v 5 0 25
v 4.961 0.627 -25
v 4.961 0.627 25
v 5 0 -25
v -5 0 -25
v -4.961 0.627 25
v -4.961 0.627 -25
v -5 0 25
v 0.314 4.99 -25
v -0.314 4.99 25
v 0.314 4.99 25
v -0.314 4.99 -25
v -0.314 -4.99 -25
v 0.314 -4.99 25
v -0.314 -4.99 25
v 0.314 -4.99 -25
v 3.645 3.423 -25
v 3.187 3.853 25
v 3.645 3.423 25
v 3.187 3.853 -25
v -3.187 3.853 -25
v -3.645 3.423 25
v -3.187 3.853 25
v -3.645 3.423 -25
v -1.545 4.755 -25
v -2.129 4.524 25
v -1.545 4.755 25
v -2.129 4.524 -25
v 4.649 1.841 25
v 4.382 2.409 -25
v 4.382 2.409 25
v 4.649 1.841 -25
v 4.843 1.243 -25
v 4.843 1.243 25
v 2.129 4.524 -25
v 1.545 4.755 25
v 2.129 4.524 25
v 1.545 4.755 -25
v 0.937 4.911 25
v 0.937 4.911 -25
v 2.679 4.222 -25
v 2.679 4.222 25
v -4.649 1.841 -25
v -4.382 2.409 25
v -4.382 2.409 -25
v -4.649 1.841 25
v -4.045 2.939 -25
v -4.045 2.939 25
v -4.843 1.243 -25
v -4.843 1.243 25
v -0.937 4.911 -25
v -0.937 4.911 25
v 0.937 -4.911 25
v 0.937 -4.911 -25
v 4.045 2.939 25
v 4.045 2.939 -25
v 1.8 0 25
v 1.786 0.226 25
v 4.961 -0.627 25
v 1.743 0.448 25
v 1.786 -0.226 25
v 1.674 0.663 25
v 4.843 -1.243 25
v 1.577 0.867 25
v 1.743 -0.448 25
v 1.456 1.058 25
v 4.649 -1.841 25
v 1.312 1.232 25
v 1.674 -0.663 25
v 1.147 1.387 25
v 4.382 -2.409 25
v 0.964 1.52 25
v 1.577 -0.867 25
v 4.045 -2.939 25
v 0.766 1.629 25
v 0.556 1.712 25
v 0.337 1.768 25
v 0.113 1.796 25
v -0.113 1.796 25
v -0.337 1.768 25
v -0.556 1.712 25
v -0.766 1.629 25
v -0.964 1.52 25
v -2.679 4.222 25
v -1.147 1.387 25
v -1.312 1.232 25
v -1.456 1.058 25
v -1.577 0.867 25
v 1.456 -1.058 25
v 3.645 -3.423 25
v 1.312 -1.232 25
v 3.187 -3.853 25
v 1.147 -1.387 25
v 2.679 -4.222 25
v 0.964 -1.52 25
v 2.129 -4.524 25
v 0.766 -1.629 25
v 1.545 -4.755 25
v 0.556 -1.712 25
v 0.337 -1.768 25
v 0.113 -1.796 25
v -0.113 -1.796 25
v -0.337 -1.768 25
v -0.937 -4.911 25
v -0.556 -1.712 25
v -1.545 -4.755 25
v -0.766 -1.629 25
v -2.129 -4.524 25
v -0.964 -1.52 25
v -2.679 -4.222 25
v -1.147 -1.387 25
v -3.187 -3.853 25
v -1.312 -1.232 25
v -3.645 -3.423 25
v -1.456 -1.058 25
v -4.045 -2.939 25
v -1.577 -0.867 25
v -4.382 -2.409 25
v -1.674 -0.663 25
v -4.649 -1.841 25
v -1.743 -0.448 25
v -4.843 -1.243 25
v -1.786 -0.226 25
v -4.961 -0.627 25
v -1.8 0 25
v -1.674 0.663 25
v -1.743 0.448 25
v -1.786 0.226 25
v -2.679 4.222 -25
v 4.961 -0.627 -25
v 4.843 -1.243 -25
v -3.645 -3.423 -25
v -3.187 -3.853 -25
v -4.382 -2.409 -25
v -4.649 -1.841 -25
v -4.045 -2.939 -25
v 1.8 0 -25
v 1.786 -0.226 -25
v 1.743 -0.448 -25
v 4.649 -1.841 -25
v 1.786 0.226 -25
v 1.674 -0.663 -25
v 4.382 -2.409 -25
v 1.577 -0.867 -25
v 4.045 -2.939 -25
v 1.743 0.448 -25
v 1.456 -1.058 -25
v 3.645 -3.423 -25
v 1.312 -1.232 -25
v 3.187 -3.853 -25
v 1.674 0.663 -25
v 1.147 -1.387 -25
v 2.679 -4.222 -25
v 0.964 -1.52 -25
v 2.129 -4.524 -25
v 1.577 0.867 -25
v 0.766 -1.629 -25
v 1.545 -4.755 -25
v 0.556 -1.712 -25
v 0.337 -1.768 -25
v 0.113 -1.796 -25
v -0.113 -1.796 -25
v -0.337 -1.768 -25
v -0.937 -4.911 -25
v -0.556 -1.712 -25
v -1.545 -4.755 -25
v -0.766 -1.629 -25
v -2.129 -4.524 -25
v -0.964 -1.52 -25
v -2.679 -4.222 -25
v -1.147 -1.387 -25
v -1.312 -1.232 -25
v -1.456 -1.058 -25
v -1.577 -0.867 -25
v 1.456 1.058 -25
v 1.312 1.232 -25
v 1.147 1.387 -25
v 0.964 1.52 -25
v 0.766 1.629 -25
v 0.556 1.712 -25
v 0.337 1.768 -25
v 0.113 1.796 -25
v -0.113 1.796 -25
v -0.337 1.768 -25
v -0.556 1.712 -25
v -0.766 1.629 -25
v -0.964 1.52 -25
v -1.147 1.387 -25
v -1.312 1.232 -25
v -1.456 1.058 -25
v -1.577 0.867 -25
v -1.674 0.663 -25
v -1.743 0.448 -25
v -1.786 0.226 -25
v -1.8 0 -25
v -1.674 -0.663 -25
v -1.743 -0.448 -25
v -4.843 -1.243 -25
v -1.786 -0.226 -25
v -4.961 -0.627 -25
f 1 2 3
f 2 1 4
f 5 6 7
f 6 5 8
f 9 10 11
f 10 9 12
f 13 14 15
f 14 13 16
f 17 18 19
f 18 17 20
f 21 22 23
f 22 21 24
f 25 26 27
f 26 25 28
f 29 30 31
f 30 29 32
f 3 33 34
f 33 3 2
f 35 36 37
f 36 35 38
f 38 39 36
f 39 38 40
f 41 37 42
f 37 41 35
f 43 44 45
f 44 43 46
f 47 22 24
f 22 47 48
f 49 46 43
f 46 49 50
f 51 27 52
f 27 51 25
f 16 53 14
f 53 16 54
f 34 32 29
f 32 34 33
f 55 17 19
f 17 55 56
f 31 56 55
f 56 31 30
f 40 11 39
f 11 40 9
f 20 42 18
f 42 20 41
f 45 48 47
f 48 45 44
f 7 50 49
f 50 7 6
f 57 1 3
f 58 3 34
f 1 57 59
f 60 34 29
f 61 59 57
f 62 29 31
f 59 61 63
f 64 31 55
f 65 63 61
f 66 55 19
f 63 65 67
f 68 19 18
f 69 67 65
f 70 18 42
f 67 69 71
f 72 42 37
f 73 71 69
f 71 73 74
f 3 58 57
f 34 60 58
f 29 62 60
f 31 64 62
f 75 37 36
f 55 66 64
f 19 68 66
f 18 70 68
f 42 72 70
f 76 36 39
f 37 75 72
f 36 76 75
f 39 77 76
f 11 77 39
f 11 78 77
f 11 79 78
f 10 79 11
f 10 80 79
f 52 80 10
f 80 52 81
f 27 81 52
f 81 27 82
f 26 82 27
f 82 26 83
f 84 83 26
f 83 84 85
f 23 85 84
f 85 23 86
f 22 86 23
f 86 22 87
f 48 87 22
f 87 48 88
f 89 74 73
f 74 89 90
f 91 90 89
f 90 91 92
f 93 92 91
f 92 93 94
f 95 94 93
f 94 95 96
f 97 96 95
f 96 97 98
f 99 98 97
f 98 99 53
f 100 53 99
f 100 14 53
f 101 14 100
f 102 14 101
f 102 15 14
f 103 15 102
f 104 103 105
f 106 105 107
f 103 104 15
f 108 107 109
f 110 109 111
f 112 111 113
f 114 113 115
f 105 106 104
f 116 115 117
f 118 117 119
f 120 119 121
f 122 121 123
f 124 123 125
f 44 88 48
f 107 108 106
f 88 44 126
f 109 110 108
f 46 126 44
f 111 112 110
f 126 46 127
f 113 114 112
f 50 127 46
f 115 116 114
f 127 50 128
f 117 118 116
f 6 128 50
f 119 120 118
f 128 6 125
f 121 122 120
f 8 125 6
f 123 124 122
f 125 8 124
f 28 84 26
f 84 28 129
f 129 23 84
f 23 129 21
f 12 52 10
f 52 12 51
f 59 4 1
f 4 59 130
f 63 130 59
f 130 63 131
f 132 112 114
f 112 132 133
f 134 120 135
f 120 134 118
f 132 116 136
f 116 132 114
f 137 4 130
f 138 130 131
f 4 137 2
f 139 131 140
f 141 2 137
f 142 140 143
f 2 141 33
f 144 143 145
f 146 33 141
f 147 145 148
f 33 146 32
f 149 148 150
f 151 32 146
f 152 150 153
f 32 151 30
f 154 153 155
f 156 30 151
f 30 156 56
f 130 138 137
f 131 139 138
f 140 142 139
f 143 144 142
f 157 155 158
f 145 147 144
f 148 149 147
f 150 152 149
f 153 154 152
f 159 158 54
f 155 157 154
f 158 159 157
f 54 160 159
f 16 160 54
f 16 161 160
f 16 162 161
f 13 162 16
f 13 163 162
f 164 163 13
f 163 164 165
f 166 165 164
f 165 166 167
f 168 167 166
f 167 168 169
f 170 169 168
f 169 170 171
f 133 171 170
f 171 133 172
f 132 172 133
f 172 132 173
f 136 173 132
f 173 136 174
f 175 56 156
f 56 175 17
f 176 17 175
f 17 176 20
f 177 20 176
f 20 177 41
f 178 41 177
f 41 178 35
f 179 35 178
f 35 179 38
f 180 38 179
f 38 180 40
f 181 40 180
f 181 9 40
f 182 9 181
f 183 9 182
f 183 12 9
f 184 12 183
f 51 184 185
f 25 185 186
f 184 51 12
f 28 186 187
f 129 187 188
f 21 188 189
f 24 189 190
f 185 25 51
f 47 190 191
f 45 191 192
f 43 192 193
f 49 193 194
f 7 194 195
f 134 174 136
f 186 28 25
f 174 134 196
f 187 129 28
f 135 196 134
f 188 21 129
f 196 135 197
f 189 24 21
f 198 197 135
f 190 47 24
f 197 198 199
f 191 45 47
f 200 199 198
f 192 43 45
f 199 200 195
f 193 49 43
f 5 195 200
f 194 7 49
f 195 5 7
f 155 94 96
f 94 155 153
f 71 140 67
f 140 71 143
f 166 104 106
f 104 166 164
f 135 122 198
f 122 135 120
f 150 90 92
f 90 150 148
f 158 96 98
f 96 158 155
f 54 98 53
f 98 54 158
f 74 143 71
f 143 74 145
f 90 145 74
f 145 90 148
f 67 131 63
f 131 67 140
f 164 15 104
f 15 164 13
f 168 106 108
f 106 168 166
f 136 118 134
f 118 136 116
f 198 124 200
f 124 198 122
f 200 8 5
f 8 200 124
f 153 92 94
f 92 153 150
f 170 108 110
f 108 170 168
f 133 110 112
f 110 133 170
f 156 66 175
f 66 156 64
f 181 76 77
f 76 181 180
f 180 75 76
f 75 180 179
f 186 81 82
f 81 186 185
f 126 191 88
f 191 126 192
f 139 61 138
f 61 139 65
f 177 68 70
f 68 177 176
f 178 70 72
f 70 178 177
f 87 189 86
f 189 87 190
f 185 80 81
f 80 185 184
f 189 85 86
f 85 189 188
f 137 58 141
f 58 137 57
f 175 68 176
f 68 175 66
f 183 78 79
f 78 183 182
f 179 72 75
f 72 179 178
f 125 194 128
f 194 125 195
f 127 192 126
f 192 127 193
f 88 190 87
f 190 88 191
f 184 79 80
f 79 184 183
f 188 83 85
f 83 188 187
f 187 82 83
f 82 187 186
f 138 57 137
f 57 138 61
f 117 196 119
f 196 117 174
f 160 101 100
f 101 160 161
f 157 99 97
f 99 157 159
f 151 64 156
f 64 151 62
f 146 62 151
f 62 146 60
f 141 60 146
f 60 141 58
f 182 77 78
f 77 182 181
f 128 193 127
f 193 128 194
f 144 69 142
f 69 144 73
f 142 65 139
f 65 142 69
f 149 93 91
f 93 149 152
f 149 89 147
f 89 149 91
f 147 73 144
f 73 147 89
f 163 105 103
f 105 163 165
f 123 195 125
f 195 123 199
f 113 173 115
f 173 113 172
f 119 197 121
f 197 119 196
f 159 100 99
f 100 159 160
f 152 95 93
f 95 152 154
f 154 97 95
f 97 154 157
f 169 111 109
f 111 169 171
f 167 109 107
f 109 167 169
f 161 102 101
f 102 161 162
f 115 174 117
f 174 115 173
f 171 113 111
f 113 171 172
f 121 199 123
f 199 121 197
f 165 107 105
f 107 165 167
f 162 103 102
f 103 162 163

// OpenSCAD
$fn = 50;


difference() {
	union() {
		translate(v = [0, 0, -25.0000000000]) {
			cylinder(h = 50, r = 5.0000000000);
		}
	}
	union() {
		translate(v = [0, 0, -100.0000000000]) {
			cylinder(h = 200, r = 1.8000000000);
		}
	}
}
